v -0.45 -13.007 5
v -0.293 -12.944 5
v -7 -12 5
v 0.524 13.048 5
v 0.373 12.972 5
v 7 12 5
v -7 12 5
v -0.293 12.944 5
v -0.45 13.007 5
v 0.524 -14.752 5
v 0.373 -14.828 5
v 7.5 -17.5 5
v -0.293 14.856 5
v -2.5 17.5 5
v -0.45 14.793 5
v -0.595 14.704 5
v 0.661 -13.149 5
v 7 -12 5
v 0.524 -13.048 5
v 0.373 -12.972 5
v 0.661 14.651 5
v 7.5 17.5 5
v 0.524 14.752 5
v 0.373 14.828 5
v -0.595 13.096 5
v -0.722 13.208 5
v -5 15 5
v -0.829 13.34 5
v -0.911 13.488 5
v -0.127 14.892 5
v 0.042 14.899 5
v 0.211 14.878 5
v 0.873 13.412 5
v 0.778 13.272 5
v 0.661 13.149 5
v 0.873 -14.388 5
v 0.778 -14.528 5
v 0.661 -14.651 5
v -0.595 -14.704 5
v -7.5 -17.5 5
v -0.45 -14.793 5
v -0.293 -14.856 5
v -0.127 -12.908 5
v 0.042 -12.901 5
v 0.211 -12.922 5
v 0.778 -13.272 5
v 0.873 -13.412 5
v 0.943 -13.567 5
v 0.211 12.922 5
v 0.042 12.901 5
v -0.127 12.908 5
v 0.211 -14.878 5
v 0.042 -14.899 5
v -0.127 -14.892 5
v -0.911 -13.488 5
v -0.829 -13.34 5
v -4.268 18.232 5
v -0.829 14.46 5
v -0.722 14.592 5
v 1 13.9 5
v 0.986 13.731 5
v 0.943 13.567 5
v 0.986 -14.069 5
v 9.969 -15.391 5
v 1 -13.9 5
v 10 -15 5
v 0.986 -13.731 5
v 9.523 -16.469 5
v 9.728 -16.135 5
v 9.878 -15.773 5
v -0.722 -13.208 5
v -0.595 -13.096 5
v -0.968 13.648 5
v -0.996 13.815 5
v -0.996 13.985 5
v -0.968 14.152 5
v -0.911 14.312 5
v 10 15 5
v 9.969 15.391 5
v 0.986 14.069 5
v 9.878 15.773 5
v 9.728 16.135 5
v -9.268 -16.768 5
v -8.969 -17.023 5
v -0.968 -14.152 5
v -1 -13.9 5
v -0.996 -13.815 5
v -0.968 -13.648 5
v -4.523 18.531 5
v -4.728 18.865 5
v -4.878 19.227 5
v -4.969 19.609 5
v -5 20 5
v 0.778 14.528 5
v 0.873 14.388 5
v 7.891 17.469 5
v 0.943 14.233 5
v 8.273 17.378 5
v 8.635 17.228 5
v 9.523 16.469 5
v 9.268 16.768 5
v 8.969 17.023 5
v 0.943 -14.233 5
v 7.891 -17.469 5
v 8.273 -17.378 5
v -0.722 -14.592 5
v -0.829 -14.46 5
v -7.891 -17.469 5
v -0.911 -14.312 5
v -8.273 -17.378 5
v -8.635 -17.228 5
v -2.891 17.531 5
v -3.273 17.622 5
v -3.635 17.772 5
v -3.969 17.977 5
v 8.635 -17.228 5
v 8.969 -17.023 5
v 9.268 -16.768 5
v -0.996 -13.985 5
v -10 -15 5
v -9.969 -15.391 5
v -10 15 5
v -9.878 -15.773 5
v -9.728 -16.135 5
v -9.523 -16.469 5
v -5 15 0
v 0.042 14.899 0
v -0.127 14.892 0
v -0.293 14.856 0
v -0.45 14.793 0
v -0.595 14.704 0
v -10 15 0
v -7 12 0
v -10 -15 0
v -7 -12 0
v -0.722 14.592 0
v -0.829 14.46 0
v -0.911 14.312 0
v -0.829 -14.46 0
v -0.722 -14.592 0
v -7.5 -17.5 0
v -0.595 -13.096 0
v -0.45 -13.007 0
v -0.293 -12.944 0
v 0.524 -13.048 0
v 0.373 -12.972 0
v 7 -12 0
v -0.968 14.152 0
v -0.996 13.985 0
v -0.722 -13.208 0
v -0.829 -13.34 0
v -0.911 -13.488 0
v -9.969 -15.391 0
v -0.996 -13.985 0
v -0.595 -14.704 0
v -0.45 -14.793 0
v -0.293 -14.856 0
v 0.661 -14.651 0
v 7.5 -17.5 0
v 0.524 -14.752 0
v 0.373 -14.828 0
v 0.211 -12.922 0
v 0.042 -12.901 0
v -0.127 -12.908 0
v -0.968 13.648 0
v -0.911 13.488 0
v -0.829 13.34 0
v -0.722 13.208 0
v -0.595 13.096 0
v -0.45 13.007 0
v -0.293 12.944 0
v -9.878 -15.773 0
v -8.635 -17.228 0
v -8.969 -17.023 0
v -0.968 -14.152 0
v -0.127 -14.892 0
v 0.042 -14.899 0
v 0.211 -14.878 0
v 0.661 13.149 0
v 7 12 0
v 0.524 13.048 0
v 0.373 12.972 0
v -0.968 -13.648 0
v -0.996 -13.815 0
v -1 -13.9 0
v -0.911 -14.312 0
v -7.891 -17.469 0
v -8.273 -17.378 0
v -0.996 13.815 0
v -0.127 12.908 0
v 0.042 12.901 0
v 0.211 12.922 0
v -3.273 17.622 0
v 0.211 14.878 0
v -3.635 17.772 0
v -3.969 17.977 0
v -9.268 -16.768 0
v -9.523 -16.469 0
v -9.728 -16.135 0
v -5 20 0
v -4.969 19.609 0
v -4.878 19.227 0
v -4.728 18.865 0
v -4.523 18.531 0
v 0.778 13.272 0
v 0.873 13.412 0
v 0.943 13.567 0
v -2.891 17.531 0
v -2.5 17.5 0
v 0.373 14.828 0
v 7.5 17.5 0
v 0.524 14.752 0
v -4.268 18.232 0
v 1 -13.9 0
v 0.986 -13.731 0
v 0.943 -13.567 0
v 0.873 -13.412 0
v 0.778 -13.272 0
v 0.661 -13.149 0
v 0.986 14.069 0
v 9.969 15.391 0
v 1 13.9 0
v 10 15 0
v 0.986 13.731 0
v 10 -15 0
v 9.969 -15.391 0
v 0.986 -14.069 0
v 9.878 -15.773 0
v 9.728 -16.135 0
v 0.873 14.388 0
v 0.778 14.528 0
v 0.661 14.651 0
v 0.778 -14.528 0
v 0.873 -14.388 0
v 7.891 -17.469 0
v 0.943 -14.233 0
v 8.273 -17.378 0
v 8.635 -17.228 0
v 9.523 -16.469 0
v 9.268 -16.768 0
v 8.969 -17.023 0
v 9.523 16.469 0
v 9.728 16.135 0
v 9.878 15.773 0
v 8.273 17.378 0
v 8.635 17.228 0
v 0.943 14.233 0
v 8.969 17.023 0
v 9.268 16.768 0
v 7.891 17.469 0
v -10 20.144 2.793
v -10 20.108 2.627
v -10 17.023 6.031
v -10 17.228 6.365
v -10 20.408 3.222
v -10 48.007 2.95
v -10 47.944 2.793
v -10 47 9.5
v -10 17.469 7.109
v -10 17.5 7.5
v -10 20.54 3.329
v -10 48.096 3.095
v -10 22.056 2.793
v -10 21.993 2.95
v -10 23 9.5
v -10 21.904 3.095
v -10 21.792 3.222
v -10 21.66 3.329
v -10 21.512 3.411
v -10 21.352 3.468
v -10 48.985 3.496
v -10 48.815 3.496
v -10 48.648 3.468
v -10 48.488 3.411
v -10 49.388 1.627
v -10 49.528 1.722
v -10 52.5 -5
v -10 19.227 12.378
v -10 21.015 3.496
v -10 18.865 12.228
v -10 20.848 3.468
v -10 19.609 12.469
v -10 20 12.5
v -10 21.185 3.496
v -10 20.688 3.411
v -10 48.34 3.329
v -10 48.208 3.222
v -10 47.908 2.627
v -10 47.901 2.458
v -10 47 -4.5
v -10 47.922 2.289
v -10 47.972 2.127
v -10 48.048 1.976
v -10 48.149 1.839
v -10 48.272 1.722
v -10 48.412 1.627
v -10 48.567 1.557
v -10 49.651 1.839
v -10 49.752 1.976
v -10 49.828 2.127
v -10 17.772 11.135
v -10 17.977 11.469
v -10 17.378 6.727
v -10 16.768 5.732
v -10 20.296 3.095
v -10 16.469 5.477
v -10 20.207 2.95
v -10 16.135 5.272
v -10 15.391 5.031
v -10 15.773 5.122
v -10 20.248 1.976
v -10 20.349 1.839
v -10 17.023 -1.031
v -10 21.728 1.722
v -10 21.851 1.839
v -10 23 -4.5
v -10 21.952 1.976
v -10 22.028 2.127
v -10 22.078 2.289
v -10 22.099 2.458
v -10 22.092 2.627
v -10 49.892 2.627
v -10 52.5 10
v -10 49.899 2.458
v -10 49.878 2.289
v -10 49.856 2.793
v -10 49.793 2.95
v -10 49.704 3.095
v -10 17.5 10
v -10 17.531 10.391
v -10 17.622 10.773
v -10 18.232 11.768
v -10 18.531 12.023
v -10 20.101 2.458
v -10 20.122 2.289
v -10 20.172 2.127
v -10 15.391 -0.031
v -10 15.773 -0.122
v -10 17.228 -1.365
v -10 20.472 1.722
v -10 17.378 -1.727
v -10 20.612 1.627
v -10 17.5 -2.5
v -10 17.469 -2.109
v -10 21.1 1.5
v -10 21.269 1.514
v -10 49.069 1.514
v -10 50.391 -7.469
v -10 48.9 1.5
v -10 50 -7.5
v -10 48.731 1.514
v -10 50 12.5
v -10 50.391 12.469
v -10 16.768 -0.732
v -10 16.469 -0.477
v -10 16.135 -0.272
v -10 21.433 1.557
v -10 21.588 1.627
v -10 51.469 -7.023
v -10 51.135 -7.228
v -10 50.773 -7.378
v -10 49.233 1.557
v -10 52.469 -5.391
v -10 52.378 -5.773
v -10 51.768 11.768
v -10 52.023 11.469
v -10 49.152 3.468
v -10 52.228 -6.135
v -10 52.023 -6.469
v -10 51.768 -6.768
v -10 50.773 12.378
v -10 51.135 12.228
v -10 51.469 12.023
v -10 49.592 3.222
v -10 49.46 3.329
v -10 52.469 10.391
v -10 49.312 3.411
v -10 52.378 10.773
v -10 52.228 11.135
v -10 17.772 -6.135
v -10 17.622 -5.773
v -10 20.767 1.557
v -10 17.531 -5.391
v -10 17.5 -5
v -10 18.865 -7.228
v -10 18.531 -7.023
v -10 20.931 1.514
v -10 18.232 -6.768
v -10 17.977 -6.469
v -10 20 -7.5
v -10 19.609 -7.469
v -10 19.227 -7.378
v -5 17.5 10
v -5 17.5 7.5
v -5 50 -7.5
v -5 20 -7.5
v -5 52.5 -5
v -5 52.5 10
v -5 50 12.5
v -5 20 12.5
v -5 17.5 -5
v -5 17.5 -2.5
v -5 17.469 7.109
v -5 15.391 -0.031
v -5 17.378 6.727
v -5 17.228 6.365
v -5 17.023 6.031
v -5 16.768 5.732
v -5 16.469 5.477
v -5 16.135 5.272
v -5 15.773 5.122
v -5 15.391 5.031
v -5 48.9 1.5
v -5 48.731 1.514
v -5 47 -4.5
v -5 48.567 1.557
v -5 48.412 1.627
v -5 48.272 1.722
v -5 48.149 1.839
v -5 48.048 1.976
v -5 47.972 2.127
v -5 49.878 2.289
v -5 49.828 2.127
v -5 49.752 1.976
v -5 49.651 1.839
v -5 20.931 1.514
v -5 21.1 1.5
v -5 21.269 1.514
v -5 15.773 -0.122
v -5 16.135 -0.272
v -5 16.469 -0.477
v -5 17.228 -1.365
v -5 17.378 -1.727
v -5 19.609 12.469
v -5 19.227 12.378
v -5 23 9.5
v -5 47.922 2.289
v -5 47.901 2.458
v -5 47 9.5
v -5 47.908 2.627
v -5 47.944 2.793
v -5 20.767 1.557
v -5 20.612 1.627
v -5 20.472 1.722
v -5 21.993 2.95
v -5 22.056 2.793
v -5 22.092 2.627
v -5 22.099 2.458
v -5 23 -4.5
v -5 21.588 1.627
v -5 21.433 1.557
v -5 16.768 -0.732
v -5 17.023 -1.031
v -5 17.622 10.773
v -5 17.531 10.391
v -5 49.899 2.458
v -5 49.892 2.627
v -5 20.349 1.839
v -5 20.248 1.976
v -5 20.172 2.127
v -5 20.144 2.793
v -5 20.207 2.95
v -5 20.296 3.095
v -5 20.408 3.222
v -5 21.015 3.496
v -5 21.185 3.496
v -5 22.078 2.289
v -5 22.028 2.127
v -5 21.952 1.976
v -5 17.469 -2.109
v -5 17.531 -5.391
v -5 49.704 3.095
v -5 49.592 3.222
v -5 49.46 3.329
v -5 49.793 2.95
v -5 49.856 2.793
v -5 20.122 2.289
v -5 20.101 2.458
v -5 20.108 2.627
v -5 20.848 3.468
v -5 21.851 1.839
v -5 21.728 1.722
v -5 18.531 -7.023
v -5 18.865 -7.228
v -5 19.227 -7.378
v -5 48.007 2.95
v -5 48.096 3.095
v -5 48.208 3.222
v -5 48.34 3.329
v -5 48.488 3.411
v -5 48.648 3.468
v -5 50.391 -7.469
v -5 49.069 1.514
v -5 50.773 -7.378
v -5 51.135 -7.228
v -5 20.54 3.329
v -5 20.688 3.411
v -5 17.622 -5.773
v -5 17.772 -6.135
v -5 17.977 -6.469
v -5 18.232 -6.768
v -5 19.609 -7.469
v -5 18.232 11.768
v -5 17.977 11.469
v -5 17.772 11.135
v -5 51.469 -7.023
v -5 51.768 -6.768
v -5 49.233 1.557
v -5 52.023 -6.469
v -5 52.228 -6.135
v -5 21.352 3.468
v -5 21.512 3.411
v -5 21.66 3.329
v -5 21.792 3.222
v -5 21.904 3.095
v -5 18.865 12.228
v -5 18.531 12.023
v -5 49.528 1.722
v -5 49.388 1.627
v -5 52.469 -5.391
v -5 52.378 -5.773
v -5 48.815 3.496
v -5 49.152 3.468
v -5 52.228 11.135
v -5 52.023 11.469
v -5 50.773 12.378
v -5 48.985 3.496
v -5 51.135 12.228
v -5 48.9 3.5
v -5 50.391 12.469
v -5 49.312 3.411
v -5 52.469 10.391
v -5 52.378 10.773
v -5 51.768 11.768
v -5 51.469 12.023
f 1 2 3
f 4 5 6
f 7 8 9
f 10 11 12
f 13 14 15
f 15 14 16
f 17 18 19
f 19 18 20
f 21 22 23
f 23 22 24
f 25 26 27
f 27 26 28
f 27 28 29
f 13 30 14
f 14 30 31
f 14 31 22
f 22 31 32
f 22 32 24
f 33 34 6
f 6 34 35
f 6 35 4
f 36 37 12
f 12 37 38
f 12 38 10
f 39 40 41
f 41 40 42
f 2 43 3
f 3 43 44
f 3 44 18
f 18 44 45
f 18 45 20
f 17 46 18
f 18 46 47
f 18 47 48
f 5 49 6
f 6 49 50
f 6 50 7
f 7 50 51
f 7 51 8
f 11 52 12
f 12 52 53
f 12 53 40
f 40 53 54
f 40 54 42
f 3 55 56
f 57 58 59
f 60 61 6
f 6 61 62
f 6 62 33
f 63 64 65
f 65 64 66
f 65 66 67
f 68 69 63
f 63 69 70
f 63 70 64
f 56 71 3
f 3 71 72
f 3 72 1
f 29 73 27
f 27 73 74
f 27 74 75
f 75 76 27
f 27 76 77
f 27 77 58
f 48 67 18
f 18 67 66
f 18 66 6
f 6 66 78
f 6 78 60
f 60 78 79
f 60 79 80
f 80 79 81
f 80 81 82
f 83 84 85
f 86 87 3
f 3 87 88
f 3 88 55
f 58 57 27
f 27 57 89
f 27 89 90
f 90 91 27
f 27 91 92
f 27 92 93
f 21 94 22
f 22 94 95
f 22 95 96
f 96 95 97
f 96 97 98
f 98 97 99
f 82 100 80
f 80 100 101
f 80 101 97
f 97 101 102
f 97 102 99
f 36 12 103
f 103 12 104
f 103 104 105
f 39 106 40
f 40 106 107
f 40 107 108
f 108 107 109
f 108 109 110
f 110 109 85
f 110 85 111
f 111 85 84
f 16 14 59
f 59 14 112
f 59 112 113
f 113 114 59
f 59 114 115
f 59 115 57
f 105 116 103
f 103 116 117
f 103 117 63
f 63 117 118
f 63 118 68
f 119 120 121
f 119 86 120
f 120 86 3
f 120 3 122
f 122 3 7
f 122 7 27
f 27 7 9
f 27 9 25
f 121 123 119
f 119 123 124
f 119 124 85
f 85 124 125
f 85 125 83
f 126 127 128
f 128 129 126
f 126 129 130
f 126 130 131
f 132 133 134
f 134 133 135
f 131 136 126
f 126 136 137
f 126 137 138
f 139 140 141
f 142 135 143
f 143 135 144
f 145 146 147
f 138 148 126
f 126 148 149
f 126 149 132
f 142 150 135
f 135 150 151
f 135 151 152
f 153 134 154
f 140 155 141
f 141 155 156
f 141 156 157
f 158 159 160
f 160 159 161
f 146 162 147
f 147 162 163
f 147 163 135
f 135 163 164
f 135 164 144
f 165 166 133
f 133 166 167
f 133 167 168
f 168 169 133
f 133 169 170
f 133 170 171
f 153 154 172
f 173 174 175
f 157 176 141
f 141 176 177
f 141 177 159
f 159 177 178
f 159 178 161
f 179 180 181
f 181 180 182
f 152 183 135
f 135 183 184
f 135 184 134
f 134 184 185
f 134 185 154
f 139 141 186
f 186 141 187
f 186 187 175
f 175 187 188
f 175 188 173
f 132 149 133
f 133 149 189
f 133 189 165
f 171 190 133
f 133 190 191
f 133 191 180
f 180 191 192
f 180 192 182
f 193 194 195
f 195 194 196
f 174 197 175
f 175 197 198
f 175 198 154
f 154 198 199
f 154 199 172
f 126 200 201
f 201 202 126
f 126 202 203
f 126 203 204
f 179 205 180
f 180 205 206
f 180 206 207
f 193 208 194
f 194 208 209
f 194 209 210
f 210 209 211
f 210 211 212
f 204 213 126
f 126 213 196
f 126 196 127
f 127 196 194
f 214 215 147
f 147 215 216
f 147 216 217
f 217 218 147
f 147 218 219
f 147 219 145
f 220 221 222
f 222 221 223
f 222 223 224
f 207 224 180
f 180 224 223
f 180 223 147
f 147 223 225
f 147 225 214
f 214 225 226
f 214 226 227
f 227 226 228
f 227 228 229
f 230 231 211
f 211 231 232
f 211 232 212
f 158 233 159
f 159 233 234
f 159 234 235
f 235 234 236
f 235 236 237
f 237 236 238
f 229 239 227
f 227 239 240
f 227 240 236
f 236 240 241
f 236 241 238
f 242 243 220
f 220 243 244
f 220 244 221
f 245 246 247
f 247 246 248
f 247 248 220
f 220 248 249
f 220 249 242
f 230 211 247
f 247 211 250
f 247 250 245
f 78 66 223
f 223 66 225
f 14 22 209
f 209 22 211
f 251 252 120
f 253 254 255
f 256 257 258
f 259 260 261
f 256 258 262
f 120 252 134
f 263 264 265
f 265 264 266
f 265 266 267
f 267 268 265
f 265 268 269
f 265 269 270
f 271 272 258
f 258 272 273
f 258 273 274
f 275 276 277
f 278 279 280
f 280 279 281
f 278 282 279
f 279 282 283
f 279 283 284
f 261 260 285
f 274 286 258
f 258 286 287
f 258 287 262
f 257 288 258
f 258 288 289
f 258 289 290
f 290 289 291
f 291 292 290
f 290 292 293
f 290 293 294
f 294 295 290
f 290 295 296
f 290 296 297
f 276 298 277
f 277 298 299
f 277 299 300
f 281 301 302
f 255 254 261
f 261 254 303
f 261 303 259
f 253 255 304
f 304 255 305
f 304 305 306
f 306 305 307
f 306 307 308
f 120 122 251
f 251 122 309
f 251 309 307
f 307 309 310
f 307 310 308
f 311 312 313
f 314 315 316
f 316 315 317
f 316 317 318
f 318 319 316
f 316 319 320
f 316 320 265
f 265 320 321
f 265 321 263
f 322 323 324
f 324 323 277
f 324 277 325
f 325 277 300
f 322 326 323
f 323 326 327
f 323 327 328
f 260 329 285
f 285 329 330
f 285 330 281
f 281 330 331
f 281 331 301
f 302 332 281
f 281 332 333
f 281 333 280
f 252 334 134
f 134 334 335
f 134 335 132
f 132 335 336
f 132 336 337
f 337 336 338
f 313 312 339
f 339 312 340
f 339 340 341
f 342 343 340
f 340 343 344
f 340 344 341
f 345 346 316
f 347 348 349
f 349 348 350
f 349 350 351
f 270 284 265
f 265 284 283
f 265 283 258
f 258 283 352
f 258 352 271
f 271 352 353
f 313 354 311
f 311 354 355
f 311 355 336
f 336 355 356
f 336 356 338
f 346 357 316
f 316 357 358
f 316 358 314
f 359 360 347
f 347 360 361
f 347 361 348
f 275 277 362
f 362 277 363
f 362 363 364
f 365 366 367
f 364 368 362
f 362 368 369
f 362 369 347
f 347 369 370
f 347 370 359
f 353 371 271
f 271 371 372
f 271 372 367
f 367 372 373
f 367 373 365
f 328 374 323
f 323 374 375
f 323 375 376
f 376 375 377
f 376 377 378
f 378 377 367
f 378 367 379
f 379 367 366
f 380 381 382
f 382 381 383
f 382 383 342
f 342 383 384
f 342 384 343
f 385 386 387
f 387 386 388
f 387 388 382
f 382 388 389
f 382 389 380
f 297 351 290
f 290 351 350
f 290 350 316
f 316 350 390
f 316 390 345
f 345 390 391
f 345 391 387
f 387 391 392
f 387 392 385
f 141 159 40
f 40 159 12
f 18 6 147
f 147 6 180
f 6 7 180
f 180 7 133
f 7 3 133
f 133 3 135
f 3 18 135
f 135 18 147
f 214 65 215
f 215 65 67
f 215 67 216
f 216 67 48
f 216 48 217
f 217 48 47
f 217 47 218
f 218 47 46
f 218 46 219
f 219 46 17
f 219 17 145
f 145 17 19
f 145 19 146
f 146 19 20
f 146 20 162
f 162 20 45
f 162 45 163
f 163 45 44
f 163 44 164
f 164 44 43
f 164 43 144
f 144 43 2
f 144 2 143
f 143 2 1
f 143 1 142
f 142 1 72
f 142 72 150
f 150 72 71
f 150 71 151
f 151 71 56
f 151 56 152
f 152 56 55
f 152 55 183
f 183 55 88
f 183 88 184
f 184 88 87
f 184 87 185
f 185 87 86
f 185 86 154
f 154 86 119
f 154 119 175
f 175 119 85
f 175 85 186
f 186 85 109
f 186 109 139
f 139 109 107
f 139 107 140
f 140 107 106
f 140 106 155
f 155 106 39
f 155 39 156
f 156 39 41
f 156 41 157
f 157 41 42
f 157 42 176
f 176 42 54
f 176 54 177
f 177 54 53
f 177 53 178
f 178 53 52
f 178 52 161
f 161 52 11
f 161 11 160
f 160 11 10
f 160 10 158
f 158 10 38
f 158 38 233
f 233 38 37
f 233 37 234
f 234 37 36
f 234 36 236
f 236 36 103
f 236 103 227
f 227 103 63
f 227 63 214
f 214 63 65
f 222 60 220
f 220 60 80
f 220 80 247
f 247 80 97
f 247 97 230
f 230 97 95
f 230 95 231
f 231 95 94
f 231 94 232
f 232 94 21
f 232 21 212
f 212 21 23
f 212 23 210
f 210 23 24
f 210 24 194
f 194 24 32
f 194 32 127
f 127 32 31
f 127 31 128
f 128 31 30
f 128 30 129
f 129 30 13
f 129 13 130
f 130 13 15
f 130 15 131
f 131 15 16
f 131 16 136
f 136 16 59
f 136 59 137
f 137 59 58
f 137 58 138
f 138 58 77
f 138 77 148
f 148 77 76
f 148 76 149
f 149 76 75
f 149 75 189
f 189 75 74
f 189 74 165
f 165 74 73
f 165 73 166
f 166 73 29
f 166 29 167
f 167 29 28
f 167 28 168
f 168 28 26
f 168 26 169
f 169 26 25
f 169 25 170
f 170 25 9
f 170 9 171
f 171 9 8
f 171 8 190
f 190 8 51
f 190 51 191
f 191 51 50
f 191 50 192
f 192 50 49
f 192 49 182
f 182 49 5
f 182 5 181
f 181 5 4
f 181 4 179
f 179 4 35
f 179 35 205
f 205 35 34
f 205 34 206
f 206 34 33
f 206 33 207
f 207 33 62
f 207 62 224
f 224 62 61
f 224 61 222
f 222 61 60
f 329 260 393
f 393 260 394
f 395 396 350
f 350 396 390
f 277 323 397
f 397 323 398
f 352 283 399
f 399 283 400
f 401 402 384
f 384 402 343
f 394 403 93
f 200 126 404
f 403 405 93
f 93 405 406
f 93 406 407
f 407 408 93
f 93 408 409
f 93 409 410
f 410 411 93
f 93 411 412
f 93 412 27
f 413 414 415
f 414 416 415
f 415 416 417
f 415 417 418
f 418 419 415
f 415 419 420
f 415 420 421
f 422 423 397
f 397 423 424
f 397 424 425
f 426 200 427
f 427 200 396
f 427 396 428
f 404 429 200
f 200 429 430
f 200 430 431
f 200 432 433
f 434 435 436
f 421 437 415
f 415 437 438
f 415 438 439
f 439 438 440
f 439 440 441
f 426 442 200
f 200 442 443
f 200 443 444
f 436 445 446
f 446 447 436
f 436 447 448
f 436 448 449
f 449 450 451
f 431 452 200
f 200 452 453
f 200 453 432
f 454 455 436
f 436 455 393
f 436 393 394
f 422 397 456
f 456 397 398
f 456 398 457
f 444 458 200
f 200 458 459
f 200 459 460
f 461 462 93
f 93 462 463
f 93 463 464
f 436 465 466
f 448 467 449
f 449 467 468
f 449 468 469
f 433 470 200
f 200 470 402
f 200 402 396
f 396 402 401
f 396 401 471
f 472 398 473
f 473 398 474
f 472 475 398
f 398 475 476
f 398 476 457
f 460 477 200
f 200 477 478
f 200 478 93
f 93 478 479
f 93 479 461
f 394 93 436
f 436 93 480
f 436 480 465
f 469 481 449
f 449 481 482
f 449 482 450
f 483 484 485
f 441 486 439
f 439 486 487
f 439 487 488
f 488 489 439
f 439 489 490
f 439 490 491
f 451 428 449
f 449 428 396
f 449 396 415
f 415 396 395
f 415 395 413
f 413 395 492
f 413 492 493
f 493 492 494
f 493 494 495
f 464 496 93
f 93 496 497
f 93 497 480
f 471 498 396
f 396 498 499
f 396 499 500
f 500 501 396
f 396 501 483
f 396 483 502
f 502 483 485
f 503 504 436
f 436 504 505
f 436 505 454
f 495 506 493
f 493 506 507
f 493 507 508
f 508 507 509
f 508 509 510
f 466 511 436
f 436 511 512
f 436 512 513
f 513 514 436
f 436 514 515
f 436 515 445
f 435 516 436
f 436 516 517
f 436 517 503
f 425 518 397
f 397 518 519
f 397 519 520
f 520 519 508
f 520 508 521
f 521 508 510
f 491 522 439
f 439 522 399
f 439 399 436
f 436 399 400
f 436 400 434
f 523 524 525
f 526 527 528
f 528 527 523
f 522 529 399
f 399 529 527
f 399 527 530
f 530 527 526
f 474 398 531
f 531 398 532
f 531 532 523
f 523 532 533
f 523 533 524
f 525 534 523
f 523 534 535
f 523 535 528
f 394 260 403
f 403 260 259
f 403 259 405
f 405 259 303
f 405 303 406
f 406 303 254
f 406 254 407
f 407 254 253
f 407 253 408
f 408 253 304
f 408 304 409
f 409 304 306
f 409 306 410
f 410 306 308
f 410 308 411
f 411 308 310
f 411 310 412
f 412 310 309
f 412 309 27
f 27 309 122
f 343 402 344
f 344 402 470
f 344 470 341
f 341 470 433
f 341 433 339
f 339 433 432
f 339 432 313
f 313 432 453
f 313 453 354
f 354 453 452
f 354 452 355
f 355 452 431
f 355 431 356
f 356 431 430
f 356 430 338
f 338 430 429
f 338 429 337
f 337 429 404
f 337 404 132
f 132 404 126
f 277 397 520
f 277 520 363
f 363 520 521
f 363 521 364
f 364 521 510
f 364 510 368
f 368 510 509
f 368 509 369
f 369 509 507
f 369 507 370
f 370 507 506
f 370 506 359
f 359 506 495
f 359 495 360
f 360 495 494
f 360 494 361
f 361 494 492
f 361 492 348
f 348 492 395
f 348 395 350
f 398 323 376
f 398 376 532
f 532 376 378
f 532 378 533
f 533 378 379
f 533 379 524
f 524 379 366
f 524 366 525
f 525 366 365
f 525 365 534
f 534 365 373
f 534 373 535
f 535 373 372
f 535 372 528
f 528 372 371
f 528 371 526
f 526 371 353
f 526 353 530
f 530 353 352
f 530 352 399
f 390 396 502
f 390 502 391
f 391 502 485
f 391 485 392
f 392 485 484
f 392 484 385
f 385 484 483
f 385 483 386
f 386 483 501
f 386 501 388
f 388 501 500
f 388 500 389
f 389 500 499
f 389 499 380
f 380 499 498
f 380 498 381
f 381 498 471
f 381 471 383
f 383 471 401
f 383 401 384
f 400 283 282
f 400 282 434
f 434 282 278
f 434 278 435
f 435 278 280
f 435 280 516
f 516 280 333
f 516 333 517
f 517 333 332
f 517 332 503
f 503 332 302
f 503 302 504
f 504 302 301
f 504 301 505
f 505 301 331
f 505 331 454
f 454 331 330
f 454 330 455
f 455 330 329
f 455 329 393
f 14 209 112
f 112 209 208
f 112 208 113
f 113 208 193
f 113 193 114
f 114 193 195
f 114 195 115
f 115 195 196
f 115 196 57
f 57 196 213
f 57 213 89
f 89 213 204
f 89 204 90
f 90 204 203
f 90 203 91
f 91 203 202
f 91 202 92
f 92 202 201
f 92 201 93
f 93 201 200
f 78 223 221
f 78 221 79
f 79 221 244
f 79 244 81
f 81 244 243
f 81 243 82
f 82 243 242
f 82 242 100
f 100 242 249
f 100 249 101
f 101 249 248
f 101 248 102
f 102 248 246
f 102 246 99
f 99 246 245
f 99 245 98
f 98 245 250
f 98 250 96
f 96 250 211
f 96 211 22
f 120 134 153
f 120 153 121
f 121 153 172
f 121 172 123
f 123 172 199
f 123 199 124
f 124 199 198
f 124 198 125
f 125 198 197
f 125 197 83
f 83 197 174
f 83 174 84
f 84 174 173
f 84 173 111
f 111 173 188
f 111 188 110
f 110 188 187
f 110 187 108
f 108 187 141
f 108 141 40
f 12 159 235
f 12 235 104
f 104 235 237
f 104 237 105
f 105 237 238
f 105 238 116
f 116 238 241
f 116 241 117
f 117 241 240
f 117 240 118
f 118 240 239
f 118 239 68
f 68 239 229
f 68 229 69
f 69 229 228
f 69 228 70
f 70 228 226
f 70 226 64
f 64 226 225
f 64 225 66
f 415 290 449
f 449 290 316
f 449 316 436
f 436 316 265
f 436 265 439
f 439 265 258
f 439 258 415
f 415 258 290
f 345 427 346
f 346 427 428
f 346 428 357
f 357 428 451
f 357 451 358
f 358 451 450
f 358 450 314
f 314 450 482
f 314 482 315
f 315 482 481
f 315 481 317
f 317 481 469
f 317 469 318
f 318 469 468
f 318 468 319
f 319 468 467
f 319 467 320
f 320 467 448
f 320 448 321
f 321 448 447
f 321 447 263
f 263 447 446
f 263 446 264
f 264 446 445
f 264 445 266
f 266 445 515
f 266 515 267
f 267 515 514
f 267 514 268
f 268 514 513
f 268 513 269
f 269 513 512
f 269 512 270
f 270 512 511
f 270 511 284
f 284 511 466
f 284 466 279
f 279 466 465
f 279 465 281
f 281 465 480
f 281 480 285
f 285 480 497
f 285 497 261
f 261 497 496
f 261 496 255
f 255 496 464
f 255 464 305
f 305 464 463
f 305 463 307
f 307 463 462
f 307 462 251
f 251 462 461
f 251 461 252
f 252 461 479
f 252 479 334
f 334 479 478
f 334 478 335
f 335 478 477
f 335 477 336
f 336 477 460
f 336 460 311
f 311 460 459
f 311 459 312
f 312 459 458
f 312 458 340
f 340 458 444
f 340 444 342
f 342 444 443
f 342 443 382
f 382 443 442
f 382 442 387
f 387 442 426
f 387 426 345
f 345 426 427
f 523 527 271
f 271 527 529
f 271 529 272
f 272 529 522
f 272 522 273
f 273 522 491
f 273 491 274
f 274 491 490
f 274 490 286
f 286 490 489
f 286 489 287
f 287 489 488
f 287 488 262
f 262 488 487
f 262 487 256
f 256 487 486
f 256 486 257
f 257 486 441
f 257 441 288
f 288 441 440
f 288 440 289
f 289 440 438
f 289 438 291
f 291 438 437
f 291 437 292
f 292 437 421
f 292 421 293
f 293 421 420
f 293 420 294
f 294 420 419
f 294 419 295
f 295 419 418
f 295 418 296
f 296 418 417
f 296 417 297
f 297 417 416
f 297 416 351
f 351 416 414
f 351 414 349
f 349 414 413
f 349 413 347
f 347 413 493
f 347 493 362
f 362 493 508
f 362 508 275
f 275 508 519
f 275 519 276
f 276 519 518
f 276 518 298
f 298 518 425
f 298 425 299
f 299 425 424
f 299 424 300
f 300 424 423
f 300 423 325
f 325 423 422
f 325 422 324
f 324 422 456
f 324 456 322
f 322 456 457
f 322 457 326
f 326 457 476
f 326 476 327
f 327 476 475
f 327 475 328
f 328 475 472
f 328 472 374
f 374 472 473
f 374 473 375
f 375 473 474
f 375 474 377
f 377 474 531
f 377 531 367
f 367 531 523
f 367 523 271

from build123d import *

# Parameters (mm, degrees)
SKETCH1_W           = 20
SKETCH1_H           = 35
SKETCH1_W_2         = 14
SKETCH1_H_2         = 24
BOSS_EXTRUDE1_DEPTH = 5
SKETCH2_R           = 1
CUT_EXTRUDE1_DEPTH  = 5
BOSS_EXTRUDE2_DEPTH = 5
FILLET1_R           = 2.5
FILLET2_R           = 2.5
SKETCH5_R           = 1
SKETCH5_W           = 14
SKETCH5_H           = 24
CUT_EXTRUDE2_DEPTH  = 10


with BuildPart() as part:
    # Sketch1 → Boss-Extrude1 (new body)
    with BuildSketch(Plane.XY):
        Rectangle(SKETCH1_W, SKETCH1_H)
        Rectangle(SKETCH1_W_2, SKETCH1_H_2, mode=Mode.SUBTRACT)
    extrude(amount=BOSS_EXTRUDE1_DEPTH)

    # Sketch2 → Cut-Extrude1 (cut)
    with BuildSketch(Plane.XY.offset(5)):
        with Locations((0, 13.9)):
            Circle(SKETCH2_R)
        with Locations(Location((0, -13.9, 0), (0, 0, 180))):
            Circle(SKETCH2_R)
    extrude(amount=-CUT_EXTRUDE1_DEPTH, mode=Mode.SUBTRACT)

    # Sketch3 → Boss-Extrude2 (add)
    with BuildSketch(Plane.ZY.offset(10)):
        Polygon((-7.5, 52.5), (-7.5, 17.5), (0, 17.5), (2.5, 17.5), (2.5, 52.5), align=None)
        Polygon((2.5, 52.5), (2.5, 17.5), (5, 17.5), (12.5, 17.5), (12.5, 52.5), align=None)
    extrude(amount=-BOSS_EXTRUDE2_DEPTH)

    # Fillet1
    fillet1_edges = [part.edges().sort_by_distance(p)[0] for p in [
        (-7.5, 17.5, 0),
        (-7.5, 17.5, 5),
    ]]
    fillet(fillet1_edges, radius=FILLET1_R)

    # Fillet2
    fillet2_edges = [part.edges().sort_by_distance(p)[0] for p in [
        (-5, 17.5, 2.5),
        (-7.5, 17.5, 12.5),
        (-7.5, 17.5, -7.5),
        (-7.5, 52.5, -7.5),
        (-7.5, 52.5, 12.5),
        (10, -17.5, 2.5),
        (-10, -17.5, 2.5),
        (10, 17.5, 2.5),
    ]]
    fillet(fillet2_edges, radius=FILLET2_R)

    # Sketch5 → Cut-Extrude2 (cut)
    with BuildSketch(Plane(origin=(-5, 0, 0), x_dir=(0, 0, -1), z_dir=(1, 0, 0))):
        with Locations((-2.5, 21.1)):
            Circle(SKETCH5_R)
        with Locations((-2.5, 48.9)):
            Circle(SKETCH5_R)
        with Locations((-2.5, 35)):
            Rectangle(SKETCH5_W, SKETCH5_H)
    extrude(amount=-CUT_EXTRUDE2_DEPTH, mode=Mode.SUBTRACT)


solid = part.part
